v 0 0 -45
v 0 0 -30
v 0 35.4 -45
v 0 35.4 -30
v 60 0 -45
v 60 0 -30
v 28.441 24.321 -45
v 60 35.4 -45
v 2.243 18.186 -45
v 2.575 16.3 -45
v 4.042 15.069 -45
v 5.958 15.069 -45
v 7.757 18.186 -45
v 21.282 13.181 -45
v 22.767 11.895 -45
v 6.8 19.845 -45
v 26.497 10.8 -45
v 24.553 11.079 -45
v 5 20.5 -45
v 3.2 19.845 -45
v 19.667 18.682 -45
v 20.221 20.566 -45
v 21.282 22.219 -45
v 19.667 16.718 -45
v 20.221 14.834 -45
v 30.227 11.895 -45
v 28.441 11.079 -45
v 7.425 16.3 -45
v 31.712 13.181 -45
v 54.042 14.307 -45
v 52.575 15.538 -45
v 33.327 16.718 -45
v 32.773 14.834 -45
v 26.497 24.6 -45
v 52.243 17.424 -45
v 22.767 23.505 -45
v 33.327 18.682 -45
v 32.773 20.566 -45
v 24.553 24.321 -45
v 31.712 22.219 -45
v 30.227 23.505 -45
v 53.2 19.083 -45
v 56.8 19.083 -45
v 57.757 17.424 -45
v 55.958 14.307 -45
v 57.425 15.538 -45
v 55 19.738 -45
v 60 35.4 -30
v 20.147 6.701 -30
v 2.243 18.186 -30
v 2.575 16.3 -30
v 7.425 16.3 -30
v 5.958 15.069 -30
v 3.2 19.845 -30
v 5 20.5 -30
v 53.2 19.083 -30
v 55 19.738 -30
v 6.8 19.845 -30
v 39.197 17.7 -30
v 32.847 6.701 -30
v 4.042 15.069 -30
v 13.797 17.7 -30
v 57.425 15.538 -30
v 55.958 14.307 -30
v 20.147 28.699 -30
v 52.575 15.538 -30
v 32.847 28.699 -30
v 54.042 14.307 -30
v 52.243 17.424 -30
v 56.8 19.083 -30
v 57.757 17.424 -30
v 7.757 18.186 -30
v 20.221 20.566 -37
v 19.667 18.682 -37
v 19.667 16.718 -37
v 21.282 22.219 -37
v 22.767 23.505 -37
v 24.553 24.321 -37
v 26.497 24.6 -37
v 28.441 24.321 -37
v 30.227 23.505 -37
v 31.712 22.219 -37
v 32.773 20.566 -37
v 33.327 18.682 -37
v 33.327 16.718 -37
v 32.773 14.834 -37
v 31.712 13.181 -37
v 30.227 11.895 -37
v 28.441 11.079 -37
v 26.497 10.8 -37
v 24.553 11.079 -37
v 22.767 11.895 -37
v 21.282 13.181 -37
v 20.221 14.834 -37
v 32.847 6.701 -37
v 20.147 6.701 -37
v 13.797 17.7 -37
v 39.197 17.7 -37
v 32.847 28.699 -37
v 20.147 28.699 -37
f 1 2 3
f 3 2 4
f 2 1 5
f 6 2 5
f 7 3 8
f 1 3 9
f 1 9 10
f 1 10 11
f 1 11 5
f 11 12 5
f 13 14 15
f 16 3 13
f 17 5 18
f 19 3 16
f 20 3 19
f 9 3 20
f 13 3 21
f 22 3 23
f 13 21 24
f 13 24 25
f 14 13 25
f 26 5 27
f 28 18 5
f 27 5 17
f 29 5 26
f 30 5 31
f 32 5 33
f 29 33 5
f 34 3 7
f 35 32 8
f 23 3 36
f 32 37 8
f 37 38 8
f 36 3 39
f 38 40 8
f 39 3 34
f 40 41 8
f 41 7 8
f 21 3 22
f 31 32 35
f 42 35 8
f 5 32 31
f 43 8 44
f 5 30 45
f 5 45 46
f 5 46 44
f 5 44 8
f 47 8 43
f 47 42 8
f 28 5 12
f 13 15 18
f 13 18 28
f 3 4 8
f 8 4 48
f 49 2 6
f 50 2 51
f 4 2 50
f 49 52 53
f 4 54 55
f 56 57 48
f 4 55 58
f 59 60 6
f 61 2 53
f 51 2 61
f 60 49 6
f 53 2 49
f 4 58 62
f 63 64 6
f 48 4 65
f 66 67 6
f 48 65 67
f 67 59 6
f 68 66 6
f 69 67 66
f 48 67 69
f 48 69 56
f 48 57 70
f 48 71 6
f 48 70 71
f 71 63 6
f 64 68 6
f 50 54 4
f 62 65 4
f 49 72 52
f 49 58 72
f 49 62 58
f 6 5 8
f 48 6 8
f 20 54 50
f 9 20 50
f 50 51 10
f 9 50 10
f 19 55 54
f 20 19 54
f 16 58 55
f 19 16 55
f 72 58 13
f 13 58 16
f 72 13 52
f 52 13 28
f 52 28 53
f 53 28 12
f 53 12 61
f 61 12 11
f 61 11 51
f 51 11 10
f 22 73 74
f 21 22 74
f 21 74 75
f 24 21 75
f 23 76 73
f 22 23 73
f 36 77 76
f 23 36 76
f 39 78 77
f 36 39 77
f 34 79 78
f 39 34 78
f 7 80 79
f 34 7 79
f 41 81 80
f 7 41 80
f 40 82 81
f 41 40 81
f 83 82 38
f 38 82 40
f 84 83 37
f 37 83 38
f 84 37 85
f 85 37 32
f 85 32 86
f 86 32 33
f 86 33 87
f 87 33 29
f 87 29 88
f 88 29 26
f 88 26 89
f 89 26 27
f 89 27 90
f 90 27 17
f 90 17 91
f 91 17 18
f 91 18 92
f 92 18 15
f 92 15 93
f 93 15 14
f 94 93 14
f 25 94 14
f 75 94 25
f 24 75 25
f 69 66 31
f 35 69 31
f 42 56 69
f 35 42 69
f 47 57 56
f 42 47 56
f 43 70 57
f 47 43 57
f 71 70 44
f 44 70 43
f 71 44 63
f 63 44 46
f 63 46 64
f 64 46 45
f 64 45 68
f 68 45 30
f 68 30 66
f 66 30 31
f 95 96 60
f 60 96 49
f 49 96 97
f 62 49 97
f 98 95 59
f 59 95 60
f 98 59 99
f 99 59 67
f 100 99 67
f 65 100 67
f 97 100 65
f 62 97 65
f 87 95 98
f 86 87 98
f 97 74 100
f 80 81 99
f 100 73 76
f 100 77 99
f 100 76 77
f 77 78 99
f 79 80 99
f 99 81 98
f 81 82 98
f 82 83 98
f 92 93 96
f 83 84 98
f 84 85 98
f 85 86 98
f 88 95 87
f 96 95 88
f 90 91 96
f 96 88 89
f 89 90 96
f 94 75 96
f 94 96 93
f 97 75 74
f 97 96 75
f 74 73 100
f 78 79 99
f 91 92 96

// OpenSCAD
// Parametric Mendel Extruder in SCAD by Vik, based on SCAD conversion by rbisping
// vik@diamondage.co.nz, 2010-01-02
// Pinch bearing & filament size is parametric. Also added pointy tops to horizontal holes.

m4_clearance_rad=2.6;
bearing_clearance_rad=8;

//This is actually the radius of the bowden cable. I know. it's a hack.
filament_rad=6.5;		// Includes some clearance.

ptfe_rad=9.2;			// 18mm dia PTFE spacer. May well be 16mm rad for you.

nut_inset_depth = 6.7;	// The depth of the hexoginal hole for the nut to sit in
nut_rad = 12.7;			// nut on the bowden cable
extruder_thick=nut_rad*2+10;
extruder_height=15;		// The overall height of this part when placed with the cable vertical
extruder_clamp_thick=30;
filament_x_offset=26.497;

module box(w,h,d) {
	scale ([w,h,d]) cube(1, true);
}

module roundedBox(w,h,d,f){
	difference(){
		box(w,h,d);
		translate([-w/2,h/2,0]) cube(w/(f/2),true);
		translate([w/2,h/2,0]) cube(w/(f/2),true);
		translate([-w/2,-h/2,0]) cube(w/(f/2),true);
		translate([w/2,-h/2,0]) cube(w/(f/2),true);
	}
	translate([-w/2+w/f,h/2-w/f,-d/2]) cylinder(d,w/f, w/f);
	translate([w/2-w/f,h/2-w/f,-d/2]) cylinder(d,w/f, w/f);
	translate([-w/2+w/f,-h/2+w/f,-d/2]) cylinder(d,w/f, w/f);
	translate([w/2-w/f,-h/2+w/f,-d/2]) cylinder(d,w/f, w/f);
}
module hexagon(height, depth) {
	boxWidth=height/1.75;
		union(){
			box(boxWidth, height, depth);
			rotate([0,0,60]) box(boxWidth, height, depth);
			rotate([0,0,-60]) box(boxWidth, height, depth);
		}
}

module m4_hole_horiz(l) {
	cylinder(l,m4_clearance_rad+0.2,m4_clearance_rad+0.2,center=true);
}

module m8_hole_horiz(l) {
	cylinder(l,m8_clearance_rad,m4_clearance_rad,center=true);
	translate ([m8_clearance_rad*0.6,0,0]) rotate ([0,0,45])
		cube([m8_clearance_rad,m8_clearance_rad,l],center=true);
}

module m4_hole_vert(l) {
	cylinder(l,m4_clearance_rad+0.2,m4_clearance_rad+0.2,center=true);
}

module m6_hole_horiz(l) {
	cylinder(l,m6_clearance_rad,m6_clearance_rad,center=true);
	translate ([m6_clearance_rad*0.6,0,0]) rotate ([0,0,45])
		cube([m6_clearance_rad,m6_clearance_rad,l],center=true);
}
module m8_hole_horiz(l) {
	cylinder(l,m8_clearance_rad,m8_clearance_rad,center=true);
	translate ([m8_clearance_rad*0.6,0,0]) rotate ([0,0,45])
		cube([m8_clearance_rad,m8_clearance_rad,l],center=true);
}

// No .4 3/4 inch countersunk woodscrew (includes a lot of headspace)
module small_woodscrew() {
	rotate ([0,0,30]) {
		translate ([0,0,-7.5]) cylinder(h=3,r1=0.2,r2=1.8,center=true);
		cylinder(h=12,r1=1.8,r2=2.0,center=true);
		translate([0,0,6]) cylinder(h=4, r1=2.0, r2=4.0);
	}
}

// For nut cavities, "height" is the max distance between two points on the hex.
module m4_nut_cavity(l) {
	hexagon(height=8,depth=l);
}

module m8_nut_cavity(l) {
	hexagon(height=14,depth=l);
}

module m4_hole_vert_with_hex(l) {
	union () {
		m4_hole_vert(l);
		translate ([0,0,-l/4]) rotate ([0,0,30]) m4_nut_cavity(l/2);
	}
}

module m4_hole_horiz_with_hex(l) {
	union () {
		m4_hole_horiz(l);
		translate ([0,0,-l/4]) rotate ([0,0,0]) m4_nut_cavity(l/2);
	}
}

module m3_slot() {
	cube([7.149,extruder_thick*2.1,3.4],center=true);
}

filament_oversize=0.4;	// If your extruder is perfect this can be zero :)
module filament_cavity() {
	union () {
		cylinder(100,filament_rad+filament_oversize,filament_rad+filament_oversize,center=true);
	}
}

module pinchwheel()
{
translate([-40,10,0])rotate(90,[1,0,0])
{
difference()
	{
	union()
		{
		// Main block of the thing.
       		translate([30,extruder_thick/2,extruder_height/2+10])cube([60,extruder_thick,extruder_height], center = true);
		}
	union()
		{
		// Bowden Cable hole
translate([filament_x_offset,extruder_thick/2,21.635])rotate([0,0,90]) filament_cavity();

		// Horizontal M4 holes
		translate([5,extruder_thick/2,extruder_height/2+10])rotate([0,0,90]) m4_hole_horiz(extruder_height*1.1);
		translate([55,extruder_thick/2.09,extruder_height/2+10])rotate([0,0,90]) m4_hole_horiz(extruder_height*1.1);

//Hex Filament Nut Hole
#translate([filament_x_offset,extruder_thick/2,extruder_height/2+nut_inset_depth/2+10+1]) rotate ([90,0,90]) rotate([90,90,0])cylinder(h=nut_inset_depth+1,r=nut_rad,center=true, $fn=6);

		}
	}
}
}

// Put it in X+ve, Y+ve
rotate([-90,0,0])translate ([40,45,0]) pinchwheel();
